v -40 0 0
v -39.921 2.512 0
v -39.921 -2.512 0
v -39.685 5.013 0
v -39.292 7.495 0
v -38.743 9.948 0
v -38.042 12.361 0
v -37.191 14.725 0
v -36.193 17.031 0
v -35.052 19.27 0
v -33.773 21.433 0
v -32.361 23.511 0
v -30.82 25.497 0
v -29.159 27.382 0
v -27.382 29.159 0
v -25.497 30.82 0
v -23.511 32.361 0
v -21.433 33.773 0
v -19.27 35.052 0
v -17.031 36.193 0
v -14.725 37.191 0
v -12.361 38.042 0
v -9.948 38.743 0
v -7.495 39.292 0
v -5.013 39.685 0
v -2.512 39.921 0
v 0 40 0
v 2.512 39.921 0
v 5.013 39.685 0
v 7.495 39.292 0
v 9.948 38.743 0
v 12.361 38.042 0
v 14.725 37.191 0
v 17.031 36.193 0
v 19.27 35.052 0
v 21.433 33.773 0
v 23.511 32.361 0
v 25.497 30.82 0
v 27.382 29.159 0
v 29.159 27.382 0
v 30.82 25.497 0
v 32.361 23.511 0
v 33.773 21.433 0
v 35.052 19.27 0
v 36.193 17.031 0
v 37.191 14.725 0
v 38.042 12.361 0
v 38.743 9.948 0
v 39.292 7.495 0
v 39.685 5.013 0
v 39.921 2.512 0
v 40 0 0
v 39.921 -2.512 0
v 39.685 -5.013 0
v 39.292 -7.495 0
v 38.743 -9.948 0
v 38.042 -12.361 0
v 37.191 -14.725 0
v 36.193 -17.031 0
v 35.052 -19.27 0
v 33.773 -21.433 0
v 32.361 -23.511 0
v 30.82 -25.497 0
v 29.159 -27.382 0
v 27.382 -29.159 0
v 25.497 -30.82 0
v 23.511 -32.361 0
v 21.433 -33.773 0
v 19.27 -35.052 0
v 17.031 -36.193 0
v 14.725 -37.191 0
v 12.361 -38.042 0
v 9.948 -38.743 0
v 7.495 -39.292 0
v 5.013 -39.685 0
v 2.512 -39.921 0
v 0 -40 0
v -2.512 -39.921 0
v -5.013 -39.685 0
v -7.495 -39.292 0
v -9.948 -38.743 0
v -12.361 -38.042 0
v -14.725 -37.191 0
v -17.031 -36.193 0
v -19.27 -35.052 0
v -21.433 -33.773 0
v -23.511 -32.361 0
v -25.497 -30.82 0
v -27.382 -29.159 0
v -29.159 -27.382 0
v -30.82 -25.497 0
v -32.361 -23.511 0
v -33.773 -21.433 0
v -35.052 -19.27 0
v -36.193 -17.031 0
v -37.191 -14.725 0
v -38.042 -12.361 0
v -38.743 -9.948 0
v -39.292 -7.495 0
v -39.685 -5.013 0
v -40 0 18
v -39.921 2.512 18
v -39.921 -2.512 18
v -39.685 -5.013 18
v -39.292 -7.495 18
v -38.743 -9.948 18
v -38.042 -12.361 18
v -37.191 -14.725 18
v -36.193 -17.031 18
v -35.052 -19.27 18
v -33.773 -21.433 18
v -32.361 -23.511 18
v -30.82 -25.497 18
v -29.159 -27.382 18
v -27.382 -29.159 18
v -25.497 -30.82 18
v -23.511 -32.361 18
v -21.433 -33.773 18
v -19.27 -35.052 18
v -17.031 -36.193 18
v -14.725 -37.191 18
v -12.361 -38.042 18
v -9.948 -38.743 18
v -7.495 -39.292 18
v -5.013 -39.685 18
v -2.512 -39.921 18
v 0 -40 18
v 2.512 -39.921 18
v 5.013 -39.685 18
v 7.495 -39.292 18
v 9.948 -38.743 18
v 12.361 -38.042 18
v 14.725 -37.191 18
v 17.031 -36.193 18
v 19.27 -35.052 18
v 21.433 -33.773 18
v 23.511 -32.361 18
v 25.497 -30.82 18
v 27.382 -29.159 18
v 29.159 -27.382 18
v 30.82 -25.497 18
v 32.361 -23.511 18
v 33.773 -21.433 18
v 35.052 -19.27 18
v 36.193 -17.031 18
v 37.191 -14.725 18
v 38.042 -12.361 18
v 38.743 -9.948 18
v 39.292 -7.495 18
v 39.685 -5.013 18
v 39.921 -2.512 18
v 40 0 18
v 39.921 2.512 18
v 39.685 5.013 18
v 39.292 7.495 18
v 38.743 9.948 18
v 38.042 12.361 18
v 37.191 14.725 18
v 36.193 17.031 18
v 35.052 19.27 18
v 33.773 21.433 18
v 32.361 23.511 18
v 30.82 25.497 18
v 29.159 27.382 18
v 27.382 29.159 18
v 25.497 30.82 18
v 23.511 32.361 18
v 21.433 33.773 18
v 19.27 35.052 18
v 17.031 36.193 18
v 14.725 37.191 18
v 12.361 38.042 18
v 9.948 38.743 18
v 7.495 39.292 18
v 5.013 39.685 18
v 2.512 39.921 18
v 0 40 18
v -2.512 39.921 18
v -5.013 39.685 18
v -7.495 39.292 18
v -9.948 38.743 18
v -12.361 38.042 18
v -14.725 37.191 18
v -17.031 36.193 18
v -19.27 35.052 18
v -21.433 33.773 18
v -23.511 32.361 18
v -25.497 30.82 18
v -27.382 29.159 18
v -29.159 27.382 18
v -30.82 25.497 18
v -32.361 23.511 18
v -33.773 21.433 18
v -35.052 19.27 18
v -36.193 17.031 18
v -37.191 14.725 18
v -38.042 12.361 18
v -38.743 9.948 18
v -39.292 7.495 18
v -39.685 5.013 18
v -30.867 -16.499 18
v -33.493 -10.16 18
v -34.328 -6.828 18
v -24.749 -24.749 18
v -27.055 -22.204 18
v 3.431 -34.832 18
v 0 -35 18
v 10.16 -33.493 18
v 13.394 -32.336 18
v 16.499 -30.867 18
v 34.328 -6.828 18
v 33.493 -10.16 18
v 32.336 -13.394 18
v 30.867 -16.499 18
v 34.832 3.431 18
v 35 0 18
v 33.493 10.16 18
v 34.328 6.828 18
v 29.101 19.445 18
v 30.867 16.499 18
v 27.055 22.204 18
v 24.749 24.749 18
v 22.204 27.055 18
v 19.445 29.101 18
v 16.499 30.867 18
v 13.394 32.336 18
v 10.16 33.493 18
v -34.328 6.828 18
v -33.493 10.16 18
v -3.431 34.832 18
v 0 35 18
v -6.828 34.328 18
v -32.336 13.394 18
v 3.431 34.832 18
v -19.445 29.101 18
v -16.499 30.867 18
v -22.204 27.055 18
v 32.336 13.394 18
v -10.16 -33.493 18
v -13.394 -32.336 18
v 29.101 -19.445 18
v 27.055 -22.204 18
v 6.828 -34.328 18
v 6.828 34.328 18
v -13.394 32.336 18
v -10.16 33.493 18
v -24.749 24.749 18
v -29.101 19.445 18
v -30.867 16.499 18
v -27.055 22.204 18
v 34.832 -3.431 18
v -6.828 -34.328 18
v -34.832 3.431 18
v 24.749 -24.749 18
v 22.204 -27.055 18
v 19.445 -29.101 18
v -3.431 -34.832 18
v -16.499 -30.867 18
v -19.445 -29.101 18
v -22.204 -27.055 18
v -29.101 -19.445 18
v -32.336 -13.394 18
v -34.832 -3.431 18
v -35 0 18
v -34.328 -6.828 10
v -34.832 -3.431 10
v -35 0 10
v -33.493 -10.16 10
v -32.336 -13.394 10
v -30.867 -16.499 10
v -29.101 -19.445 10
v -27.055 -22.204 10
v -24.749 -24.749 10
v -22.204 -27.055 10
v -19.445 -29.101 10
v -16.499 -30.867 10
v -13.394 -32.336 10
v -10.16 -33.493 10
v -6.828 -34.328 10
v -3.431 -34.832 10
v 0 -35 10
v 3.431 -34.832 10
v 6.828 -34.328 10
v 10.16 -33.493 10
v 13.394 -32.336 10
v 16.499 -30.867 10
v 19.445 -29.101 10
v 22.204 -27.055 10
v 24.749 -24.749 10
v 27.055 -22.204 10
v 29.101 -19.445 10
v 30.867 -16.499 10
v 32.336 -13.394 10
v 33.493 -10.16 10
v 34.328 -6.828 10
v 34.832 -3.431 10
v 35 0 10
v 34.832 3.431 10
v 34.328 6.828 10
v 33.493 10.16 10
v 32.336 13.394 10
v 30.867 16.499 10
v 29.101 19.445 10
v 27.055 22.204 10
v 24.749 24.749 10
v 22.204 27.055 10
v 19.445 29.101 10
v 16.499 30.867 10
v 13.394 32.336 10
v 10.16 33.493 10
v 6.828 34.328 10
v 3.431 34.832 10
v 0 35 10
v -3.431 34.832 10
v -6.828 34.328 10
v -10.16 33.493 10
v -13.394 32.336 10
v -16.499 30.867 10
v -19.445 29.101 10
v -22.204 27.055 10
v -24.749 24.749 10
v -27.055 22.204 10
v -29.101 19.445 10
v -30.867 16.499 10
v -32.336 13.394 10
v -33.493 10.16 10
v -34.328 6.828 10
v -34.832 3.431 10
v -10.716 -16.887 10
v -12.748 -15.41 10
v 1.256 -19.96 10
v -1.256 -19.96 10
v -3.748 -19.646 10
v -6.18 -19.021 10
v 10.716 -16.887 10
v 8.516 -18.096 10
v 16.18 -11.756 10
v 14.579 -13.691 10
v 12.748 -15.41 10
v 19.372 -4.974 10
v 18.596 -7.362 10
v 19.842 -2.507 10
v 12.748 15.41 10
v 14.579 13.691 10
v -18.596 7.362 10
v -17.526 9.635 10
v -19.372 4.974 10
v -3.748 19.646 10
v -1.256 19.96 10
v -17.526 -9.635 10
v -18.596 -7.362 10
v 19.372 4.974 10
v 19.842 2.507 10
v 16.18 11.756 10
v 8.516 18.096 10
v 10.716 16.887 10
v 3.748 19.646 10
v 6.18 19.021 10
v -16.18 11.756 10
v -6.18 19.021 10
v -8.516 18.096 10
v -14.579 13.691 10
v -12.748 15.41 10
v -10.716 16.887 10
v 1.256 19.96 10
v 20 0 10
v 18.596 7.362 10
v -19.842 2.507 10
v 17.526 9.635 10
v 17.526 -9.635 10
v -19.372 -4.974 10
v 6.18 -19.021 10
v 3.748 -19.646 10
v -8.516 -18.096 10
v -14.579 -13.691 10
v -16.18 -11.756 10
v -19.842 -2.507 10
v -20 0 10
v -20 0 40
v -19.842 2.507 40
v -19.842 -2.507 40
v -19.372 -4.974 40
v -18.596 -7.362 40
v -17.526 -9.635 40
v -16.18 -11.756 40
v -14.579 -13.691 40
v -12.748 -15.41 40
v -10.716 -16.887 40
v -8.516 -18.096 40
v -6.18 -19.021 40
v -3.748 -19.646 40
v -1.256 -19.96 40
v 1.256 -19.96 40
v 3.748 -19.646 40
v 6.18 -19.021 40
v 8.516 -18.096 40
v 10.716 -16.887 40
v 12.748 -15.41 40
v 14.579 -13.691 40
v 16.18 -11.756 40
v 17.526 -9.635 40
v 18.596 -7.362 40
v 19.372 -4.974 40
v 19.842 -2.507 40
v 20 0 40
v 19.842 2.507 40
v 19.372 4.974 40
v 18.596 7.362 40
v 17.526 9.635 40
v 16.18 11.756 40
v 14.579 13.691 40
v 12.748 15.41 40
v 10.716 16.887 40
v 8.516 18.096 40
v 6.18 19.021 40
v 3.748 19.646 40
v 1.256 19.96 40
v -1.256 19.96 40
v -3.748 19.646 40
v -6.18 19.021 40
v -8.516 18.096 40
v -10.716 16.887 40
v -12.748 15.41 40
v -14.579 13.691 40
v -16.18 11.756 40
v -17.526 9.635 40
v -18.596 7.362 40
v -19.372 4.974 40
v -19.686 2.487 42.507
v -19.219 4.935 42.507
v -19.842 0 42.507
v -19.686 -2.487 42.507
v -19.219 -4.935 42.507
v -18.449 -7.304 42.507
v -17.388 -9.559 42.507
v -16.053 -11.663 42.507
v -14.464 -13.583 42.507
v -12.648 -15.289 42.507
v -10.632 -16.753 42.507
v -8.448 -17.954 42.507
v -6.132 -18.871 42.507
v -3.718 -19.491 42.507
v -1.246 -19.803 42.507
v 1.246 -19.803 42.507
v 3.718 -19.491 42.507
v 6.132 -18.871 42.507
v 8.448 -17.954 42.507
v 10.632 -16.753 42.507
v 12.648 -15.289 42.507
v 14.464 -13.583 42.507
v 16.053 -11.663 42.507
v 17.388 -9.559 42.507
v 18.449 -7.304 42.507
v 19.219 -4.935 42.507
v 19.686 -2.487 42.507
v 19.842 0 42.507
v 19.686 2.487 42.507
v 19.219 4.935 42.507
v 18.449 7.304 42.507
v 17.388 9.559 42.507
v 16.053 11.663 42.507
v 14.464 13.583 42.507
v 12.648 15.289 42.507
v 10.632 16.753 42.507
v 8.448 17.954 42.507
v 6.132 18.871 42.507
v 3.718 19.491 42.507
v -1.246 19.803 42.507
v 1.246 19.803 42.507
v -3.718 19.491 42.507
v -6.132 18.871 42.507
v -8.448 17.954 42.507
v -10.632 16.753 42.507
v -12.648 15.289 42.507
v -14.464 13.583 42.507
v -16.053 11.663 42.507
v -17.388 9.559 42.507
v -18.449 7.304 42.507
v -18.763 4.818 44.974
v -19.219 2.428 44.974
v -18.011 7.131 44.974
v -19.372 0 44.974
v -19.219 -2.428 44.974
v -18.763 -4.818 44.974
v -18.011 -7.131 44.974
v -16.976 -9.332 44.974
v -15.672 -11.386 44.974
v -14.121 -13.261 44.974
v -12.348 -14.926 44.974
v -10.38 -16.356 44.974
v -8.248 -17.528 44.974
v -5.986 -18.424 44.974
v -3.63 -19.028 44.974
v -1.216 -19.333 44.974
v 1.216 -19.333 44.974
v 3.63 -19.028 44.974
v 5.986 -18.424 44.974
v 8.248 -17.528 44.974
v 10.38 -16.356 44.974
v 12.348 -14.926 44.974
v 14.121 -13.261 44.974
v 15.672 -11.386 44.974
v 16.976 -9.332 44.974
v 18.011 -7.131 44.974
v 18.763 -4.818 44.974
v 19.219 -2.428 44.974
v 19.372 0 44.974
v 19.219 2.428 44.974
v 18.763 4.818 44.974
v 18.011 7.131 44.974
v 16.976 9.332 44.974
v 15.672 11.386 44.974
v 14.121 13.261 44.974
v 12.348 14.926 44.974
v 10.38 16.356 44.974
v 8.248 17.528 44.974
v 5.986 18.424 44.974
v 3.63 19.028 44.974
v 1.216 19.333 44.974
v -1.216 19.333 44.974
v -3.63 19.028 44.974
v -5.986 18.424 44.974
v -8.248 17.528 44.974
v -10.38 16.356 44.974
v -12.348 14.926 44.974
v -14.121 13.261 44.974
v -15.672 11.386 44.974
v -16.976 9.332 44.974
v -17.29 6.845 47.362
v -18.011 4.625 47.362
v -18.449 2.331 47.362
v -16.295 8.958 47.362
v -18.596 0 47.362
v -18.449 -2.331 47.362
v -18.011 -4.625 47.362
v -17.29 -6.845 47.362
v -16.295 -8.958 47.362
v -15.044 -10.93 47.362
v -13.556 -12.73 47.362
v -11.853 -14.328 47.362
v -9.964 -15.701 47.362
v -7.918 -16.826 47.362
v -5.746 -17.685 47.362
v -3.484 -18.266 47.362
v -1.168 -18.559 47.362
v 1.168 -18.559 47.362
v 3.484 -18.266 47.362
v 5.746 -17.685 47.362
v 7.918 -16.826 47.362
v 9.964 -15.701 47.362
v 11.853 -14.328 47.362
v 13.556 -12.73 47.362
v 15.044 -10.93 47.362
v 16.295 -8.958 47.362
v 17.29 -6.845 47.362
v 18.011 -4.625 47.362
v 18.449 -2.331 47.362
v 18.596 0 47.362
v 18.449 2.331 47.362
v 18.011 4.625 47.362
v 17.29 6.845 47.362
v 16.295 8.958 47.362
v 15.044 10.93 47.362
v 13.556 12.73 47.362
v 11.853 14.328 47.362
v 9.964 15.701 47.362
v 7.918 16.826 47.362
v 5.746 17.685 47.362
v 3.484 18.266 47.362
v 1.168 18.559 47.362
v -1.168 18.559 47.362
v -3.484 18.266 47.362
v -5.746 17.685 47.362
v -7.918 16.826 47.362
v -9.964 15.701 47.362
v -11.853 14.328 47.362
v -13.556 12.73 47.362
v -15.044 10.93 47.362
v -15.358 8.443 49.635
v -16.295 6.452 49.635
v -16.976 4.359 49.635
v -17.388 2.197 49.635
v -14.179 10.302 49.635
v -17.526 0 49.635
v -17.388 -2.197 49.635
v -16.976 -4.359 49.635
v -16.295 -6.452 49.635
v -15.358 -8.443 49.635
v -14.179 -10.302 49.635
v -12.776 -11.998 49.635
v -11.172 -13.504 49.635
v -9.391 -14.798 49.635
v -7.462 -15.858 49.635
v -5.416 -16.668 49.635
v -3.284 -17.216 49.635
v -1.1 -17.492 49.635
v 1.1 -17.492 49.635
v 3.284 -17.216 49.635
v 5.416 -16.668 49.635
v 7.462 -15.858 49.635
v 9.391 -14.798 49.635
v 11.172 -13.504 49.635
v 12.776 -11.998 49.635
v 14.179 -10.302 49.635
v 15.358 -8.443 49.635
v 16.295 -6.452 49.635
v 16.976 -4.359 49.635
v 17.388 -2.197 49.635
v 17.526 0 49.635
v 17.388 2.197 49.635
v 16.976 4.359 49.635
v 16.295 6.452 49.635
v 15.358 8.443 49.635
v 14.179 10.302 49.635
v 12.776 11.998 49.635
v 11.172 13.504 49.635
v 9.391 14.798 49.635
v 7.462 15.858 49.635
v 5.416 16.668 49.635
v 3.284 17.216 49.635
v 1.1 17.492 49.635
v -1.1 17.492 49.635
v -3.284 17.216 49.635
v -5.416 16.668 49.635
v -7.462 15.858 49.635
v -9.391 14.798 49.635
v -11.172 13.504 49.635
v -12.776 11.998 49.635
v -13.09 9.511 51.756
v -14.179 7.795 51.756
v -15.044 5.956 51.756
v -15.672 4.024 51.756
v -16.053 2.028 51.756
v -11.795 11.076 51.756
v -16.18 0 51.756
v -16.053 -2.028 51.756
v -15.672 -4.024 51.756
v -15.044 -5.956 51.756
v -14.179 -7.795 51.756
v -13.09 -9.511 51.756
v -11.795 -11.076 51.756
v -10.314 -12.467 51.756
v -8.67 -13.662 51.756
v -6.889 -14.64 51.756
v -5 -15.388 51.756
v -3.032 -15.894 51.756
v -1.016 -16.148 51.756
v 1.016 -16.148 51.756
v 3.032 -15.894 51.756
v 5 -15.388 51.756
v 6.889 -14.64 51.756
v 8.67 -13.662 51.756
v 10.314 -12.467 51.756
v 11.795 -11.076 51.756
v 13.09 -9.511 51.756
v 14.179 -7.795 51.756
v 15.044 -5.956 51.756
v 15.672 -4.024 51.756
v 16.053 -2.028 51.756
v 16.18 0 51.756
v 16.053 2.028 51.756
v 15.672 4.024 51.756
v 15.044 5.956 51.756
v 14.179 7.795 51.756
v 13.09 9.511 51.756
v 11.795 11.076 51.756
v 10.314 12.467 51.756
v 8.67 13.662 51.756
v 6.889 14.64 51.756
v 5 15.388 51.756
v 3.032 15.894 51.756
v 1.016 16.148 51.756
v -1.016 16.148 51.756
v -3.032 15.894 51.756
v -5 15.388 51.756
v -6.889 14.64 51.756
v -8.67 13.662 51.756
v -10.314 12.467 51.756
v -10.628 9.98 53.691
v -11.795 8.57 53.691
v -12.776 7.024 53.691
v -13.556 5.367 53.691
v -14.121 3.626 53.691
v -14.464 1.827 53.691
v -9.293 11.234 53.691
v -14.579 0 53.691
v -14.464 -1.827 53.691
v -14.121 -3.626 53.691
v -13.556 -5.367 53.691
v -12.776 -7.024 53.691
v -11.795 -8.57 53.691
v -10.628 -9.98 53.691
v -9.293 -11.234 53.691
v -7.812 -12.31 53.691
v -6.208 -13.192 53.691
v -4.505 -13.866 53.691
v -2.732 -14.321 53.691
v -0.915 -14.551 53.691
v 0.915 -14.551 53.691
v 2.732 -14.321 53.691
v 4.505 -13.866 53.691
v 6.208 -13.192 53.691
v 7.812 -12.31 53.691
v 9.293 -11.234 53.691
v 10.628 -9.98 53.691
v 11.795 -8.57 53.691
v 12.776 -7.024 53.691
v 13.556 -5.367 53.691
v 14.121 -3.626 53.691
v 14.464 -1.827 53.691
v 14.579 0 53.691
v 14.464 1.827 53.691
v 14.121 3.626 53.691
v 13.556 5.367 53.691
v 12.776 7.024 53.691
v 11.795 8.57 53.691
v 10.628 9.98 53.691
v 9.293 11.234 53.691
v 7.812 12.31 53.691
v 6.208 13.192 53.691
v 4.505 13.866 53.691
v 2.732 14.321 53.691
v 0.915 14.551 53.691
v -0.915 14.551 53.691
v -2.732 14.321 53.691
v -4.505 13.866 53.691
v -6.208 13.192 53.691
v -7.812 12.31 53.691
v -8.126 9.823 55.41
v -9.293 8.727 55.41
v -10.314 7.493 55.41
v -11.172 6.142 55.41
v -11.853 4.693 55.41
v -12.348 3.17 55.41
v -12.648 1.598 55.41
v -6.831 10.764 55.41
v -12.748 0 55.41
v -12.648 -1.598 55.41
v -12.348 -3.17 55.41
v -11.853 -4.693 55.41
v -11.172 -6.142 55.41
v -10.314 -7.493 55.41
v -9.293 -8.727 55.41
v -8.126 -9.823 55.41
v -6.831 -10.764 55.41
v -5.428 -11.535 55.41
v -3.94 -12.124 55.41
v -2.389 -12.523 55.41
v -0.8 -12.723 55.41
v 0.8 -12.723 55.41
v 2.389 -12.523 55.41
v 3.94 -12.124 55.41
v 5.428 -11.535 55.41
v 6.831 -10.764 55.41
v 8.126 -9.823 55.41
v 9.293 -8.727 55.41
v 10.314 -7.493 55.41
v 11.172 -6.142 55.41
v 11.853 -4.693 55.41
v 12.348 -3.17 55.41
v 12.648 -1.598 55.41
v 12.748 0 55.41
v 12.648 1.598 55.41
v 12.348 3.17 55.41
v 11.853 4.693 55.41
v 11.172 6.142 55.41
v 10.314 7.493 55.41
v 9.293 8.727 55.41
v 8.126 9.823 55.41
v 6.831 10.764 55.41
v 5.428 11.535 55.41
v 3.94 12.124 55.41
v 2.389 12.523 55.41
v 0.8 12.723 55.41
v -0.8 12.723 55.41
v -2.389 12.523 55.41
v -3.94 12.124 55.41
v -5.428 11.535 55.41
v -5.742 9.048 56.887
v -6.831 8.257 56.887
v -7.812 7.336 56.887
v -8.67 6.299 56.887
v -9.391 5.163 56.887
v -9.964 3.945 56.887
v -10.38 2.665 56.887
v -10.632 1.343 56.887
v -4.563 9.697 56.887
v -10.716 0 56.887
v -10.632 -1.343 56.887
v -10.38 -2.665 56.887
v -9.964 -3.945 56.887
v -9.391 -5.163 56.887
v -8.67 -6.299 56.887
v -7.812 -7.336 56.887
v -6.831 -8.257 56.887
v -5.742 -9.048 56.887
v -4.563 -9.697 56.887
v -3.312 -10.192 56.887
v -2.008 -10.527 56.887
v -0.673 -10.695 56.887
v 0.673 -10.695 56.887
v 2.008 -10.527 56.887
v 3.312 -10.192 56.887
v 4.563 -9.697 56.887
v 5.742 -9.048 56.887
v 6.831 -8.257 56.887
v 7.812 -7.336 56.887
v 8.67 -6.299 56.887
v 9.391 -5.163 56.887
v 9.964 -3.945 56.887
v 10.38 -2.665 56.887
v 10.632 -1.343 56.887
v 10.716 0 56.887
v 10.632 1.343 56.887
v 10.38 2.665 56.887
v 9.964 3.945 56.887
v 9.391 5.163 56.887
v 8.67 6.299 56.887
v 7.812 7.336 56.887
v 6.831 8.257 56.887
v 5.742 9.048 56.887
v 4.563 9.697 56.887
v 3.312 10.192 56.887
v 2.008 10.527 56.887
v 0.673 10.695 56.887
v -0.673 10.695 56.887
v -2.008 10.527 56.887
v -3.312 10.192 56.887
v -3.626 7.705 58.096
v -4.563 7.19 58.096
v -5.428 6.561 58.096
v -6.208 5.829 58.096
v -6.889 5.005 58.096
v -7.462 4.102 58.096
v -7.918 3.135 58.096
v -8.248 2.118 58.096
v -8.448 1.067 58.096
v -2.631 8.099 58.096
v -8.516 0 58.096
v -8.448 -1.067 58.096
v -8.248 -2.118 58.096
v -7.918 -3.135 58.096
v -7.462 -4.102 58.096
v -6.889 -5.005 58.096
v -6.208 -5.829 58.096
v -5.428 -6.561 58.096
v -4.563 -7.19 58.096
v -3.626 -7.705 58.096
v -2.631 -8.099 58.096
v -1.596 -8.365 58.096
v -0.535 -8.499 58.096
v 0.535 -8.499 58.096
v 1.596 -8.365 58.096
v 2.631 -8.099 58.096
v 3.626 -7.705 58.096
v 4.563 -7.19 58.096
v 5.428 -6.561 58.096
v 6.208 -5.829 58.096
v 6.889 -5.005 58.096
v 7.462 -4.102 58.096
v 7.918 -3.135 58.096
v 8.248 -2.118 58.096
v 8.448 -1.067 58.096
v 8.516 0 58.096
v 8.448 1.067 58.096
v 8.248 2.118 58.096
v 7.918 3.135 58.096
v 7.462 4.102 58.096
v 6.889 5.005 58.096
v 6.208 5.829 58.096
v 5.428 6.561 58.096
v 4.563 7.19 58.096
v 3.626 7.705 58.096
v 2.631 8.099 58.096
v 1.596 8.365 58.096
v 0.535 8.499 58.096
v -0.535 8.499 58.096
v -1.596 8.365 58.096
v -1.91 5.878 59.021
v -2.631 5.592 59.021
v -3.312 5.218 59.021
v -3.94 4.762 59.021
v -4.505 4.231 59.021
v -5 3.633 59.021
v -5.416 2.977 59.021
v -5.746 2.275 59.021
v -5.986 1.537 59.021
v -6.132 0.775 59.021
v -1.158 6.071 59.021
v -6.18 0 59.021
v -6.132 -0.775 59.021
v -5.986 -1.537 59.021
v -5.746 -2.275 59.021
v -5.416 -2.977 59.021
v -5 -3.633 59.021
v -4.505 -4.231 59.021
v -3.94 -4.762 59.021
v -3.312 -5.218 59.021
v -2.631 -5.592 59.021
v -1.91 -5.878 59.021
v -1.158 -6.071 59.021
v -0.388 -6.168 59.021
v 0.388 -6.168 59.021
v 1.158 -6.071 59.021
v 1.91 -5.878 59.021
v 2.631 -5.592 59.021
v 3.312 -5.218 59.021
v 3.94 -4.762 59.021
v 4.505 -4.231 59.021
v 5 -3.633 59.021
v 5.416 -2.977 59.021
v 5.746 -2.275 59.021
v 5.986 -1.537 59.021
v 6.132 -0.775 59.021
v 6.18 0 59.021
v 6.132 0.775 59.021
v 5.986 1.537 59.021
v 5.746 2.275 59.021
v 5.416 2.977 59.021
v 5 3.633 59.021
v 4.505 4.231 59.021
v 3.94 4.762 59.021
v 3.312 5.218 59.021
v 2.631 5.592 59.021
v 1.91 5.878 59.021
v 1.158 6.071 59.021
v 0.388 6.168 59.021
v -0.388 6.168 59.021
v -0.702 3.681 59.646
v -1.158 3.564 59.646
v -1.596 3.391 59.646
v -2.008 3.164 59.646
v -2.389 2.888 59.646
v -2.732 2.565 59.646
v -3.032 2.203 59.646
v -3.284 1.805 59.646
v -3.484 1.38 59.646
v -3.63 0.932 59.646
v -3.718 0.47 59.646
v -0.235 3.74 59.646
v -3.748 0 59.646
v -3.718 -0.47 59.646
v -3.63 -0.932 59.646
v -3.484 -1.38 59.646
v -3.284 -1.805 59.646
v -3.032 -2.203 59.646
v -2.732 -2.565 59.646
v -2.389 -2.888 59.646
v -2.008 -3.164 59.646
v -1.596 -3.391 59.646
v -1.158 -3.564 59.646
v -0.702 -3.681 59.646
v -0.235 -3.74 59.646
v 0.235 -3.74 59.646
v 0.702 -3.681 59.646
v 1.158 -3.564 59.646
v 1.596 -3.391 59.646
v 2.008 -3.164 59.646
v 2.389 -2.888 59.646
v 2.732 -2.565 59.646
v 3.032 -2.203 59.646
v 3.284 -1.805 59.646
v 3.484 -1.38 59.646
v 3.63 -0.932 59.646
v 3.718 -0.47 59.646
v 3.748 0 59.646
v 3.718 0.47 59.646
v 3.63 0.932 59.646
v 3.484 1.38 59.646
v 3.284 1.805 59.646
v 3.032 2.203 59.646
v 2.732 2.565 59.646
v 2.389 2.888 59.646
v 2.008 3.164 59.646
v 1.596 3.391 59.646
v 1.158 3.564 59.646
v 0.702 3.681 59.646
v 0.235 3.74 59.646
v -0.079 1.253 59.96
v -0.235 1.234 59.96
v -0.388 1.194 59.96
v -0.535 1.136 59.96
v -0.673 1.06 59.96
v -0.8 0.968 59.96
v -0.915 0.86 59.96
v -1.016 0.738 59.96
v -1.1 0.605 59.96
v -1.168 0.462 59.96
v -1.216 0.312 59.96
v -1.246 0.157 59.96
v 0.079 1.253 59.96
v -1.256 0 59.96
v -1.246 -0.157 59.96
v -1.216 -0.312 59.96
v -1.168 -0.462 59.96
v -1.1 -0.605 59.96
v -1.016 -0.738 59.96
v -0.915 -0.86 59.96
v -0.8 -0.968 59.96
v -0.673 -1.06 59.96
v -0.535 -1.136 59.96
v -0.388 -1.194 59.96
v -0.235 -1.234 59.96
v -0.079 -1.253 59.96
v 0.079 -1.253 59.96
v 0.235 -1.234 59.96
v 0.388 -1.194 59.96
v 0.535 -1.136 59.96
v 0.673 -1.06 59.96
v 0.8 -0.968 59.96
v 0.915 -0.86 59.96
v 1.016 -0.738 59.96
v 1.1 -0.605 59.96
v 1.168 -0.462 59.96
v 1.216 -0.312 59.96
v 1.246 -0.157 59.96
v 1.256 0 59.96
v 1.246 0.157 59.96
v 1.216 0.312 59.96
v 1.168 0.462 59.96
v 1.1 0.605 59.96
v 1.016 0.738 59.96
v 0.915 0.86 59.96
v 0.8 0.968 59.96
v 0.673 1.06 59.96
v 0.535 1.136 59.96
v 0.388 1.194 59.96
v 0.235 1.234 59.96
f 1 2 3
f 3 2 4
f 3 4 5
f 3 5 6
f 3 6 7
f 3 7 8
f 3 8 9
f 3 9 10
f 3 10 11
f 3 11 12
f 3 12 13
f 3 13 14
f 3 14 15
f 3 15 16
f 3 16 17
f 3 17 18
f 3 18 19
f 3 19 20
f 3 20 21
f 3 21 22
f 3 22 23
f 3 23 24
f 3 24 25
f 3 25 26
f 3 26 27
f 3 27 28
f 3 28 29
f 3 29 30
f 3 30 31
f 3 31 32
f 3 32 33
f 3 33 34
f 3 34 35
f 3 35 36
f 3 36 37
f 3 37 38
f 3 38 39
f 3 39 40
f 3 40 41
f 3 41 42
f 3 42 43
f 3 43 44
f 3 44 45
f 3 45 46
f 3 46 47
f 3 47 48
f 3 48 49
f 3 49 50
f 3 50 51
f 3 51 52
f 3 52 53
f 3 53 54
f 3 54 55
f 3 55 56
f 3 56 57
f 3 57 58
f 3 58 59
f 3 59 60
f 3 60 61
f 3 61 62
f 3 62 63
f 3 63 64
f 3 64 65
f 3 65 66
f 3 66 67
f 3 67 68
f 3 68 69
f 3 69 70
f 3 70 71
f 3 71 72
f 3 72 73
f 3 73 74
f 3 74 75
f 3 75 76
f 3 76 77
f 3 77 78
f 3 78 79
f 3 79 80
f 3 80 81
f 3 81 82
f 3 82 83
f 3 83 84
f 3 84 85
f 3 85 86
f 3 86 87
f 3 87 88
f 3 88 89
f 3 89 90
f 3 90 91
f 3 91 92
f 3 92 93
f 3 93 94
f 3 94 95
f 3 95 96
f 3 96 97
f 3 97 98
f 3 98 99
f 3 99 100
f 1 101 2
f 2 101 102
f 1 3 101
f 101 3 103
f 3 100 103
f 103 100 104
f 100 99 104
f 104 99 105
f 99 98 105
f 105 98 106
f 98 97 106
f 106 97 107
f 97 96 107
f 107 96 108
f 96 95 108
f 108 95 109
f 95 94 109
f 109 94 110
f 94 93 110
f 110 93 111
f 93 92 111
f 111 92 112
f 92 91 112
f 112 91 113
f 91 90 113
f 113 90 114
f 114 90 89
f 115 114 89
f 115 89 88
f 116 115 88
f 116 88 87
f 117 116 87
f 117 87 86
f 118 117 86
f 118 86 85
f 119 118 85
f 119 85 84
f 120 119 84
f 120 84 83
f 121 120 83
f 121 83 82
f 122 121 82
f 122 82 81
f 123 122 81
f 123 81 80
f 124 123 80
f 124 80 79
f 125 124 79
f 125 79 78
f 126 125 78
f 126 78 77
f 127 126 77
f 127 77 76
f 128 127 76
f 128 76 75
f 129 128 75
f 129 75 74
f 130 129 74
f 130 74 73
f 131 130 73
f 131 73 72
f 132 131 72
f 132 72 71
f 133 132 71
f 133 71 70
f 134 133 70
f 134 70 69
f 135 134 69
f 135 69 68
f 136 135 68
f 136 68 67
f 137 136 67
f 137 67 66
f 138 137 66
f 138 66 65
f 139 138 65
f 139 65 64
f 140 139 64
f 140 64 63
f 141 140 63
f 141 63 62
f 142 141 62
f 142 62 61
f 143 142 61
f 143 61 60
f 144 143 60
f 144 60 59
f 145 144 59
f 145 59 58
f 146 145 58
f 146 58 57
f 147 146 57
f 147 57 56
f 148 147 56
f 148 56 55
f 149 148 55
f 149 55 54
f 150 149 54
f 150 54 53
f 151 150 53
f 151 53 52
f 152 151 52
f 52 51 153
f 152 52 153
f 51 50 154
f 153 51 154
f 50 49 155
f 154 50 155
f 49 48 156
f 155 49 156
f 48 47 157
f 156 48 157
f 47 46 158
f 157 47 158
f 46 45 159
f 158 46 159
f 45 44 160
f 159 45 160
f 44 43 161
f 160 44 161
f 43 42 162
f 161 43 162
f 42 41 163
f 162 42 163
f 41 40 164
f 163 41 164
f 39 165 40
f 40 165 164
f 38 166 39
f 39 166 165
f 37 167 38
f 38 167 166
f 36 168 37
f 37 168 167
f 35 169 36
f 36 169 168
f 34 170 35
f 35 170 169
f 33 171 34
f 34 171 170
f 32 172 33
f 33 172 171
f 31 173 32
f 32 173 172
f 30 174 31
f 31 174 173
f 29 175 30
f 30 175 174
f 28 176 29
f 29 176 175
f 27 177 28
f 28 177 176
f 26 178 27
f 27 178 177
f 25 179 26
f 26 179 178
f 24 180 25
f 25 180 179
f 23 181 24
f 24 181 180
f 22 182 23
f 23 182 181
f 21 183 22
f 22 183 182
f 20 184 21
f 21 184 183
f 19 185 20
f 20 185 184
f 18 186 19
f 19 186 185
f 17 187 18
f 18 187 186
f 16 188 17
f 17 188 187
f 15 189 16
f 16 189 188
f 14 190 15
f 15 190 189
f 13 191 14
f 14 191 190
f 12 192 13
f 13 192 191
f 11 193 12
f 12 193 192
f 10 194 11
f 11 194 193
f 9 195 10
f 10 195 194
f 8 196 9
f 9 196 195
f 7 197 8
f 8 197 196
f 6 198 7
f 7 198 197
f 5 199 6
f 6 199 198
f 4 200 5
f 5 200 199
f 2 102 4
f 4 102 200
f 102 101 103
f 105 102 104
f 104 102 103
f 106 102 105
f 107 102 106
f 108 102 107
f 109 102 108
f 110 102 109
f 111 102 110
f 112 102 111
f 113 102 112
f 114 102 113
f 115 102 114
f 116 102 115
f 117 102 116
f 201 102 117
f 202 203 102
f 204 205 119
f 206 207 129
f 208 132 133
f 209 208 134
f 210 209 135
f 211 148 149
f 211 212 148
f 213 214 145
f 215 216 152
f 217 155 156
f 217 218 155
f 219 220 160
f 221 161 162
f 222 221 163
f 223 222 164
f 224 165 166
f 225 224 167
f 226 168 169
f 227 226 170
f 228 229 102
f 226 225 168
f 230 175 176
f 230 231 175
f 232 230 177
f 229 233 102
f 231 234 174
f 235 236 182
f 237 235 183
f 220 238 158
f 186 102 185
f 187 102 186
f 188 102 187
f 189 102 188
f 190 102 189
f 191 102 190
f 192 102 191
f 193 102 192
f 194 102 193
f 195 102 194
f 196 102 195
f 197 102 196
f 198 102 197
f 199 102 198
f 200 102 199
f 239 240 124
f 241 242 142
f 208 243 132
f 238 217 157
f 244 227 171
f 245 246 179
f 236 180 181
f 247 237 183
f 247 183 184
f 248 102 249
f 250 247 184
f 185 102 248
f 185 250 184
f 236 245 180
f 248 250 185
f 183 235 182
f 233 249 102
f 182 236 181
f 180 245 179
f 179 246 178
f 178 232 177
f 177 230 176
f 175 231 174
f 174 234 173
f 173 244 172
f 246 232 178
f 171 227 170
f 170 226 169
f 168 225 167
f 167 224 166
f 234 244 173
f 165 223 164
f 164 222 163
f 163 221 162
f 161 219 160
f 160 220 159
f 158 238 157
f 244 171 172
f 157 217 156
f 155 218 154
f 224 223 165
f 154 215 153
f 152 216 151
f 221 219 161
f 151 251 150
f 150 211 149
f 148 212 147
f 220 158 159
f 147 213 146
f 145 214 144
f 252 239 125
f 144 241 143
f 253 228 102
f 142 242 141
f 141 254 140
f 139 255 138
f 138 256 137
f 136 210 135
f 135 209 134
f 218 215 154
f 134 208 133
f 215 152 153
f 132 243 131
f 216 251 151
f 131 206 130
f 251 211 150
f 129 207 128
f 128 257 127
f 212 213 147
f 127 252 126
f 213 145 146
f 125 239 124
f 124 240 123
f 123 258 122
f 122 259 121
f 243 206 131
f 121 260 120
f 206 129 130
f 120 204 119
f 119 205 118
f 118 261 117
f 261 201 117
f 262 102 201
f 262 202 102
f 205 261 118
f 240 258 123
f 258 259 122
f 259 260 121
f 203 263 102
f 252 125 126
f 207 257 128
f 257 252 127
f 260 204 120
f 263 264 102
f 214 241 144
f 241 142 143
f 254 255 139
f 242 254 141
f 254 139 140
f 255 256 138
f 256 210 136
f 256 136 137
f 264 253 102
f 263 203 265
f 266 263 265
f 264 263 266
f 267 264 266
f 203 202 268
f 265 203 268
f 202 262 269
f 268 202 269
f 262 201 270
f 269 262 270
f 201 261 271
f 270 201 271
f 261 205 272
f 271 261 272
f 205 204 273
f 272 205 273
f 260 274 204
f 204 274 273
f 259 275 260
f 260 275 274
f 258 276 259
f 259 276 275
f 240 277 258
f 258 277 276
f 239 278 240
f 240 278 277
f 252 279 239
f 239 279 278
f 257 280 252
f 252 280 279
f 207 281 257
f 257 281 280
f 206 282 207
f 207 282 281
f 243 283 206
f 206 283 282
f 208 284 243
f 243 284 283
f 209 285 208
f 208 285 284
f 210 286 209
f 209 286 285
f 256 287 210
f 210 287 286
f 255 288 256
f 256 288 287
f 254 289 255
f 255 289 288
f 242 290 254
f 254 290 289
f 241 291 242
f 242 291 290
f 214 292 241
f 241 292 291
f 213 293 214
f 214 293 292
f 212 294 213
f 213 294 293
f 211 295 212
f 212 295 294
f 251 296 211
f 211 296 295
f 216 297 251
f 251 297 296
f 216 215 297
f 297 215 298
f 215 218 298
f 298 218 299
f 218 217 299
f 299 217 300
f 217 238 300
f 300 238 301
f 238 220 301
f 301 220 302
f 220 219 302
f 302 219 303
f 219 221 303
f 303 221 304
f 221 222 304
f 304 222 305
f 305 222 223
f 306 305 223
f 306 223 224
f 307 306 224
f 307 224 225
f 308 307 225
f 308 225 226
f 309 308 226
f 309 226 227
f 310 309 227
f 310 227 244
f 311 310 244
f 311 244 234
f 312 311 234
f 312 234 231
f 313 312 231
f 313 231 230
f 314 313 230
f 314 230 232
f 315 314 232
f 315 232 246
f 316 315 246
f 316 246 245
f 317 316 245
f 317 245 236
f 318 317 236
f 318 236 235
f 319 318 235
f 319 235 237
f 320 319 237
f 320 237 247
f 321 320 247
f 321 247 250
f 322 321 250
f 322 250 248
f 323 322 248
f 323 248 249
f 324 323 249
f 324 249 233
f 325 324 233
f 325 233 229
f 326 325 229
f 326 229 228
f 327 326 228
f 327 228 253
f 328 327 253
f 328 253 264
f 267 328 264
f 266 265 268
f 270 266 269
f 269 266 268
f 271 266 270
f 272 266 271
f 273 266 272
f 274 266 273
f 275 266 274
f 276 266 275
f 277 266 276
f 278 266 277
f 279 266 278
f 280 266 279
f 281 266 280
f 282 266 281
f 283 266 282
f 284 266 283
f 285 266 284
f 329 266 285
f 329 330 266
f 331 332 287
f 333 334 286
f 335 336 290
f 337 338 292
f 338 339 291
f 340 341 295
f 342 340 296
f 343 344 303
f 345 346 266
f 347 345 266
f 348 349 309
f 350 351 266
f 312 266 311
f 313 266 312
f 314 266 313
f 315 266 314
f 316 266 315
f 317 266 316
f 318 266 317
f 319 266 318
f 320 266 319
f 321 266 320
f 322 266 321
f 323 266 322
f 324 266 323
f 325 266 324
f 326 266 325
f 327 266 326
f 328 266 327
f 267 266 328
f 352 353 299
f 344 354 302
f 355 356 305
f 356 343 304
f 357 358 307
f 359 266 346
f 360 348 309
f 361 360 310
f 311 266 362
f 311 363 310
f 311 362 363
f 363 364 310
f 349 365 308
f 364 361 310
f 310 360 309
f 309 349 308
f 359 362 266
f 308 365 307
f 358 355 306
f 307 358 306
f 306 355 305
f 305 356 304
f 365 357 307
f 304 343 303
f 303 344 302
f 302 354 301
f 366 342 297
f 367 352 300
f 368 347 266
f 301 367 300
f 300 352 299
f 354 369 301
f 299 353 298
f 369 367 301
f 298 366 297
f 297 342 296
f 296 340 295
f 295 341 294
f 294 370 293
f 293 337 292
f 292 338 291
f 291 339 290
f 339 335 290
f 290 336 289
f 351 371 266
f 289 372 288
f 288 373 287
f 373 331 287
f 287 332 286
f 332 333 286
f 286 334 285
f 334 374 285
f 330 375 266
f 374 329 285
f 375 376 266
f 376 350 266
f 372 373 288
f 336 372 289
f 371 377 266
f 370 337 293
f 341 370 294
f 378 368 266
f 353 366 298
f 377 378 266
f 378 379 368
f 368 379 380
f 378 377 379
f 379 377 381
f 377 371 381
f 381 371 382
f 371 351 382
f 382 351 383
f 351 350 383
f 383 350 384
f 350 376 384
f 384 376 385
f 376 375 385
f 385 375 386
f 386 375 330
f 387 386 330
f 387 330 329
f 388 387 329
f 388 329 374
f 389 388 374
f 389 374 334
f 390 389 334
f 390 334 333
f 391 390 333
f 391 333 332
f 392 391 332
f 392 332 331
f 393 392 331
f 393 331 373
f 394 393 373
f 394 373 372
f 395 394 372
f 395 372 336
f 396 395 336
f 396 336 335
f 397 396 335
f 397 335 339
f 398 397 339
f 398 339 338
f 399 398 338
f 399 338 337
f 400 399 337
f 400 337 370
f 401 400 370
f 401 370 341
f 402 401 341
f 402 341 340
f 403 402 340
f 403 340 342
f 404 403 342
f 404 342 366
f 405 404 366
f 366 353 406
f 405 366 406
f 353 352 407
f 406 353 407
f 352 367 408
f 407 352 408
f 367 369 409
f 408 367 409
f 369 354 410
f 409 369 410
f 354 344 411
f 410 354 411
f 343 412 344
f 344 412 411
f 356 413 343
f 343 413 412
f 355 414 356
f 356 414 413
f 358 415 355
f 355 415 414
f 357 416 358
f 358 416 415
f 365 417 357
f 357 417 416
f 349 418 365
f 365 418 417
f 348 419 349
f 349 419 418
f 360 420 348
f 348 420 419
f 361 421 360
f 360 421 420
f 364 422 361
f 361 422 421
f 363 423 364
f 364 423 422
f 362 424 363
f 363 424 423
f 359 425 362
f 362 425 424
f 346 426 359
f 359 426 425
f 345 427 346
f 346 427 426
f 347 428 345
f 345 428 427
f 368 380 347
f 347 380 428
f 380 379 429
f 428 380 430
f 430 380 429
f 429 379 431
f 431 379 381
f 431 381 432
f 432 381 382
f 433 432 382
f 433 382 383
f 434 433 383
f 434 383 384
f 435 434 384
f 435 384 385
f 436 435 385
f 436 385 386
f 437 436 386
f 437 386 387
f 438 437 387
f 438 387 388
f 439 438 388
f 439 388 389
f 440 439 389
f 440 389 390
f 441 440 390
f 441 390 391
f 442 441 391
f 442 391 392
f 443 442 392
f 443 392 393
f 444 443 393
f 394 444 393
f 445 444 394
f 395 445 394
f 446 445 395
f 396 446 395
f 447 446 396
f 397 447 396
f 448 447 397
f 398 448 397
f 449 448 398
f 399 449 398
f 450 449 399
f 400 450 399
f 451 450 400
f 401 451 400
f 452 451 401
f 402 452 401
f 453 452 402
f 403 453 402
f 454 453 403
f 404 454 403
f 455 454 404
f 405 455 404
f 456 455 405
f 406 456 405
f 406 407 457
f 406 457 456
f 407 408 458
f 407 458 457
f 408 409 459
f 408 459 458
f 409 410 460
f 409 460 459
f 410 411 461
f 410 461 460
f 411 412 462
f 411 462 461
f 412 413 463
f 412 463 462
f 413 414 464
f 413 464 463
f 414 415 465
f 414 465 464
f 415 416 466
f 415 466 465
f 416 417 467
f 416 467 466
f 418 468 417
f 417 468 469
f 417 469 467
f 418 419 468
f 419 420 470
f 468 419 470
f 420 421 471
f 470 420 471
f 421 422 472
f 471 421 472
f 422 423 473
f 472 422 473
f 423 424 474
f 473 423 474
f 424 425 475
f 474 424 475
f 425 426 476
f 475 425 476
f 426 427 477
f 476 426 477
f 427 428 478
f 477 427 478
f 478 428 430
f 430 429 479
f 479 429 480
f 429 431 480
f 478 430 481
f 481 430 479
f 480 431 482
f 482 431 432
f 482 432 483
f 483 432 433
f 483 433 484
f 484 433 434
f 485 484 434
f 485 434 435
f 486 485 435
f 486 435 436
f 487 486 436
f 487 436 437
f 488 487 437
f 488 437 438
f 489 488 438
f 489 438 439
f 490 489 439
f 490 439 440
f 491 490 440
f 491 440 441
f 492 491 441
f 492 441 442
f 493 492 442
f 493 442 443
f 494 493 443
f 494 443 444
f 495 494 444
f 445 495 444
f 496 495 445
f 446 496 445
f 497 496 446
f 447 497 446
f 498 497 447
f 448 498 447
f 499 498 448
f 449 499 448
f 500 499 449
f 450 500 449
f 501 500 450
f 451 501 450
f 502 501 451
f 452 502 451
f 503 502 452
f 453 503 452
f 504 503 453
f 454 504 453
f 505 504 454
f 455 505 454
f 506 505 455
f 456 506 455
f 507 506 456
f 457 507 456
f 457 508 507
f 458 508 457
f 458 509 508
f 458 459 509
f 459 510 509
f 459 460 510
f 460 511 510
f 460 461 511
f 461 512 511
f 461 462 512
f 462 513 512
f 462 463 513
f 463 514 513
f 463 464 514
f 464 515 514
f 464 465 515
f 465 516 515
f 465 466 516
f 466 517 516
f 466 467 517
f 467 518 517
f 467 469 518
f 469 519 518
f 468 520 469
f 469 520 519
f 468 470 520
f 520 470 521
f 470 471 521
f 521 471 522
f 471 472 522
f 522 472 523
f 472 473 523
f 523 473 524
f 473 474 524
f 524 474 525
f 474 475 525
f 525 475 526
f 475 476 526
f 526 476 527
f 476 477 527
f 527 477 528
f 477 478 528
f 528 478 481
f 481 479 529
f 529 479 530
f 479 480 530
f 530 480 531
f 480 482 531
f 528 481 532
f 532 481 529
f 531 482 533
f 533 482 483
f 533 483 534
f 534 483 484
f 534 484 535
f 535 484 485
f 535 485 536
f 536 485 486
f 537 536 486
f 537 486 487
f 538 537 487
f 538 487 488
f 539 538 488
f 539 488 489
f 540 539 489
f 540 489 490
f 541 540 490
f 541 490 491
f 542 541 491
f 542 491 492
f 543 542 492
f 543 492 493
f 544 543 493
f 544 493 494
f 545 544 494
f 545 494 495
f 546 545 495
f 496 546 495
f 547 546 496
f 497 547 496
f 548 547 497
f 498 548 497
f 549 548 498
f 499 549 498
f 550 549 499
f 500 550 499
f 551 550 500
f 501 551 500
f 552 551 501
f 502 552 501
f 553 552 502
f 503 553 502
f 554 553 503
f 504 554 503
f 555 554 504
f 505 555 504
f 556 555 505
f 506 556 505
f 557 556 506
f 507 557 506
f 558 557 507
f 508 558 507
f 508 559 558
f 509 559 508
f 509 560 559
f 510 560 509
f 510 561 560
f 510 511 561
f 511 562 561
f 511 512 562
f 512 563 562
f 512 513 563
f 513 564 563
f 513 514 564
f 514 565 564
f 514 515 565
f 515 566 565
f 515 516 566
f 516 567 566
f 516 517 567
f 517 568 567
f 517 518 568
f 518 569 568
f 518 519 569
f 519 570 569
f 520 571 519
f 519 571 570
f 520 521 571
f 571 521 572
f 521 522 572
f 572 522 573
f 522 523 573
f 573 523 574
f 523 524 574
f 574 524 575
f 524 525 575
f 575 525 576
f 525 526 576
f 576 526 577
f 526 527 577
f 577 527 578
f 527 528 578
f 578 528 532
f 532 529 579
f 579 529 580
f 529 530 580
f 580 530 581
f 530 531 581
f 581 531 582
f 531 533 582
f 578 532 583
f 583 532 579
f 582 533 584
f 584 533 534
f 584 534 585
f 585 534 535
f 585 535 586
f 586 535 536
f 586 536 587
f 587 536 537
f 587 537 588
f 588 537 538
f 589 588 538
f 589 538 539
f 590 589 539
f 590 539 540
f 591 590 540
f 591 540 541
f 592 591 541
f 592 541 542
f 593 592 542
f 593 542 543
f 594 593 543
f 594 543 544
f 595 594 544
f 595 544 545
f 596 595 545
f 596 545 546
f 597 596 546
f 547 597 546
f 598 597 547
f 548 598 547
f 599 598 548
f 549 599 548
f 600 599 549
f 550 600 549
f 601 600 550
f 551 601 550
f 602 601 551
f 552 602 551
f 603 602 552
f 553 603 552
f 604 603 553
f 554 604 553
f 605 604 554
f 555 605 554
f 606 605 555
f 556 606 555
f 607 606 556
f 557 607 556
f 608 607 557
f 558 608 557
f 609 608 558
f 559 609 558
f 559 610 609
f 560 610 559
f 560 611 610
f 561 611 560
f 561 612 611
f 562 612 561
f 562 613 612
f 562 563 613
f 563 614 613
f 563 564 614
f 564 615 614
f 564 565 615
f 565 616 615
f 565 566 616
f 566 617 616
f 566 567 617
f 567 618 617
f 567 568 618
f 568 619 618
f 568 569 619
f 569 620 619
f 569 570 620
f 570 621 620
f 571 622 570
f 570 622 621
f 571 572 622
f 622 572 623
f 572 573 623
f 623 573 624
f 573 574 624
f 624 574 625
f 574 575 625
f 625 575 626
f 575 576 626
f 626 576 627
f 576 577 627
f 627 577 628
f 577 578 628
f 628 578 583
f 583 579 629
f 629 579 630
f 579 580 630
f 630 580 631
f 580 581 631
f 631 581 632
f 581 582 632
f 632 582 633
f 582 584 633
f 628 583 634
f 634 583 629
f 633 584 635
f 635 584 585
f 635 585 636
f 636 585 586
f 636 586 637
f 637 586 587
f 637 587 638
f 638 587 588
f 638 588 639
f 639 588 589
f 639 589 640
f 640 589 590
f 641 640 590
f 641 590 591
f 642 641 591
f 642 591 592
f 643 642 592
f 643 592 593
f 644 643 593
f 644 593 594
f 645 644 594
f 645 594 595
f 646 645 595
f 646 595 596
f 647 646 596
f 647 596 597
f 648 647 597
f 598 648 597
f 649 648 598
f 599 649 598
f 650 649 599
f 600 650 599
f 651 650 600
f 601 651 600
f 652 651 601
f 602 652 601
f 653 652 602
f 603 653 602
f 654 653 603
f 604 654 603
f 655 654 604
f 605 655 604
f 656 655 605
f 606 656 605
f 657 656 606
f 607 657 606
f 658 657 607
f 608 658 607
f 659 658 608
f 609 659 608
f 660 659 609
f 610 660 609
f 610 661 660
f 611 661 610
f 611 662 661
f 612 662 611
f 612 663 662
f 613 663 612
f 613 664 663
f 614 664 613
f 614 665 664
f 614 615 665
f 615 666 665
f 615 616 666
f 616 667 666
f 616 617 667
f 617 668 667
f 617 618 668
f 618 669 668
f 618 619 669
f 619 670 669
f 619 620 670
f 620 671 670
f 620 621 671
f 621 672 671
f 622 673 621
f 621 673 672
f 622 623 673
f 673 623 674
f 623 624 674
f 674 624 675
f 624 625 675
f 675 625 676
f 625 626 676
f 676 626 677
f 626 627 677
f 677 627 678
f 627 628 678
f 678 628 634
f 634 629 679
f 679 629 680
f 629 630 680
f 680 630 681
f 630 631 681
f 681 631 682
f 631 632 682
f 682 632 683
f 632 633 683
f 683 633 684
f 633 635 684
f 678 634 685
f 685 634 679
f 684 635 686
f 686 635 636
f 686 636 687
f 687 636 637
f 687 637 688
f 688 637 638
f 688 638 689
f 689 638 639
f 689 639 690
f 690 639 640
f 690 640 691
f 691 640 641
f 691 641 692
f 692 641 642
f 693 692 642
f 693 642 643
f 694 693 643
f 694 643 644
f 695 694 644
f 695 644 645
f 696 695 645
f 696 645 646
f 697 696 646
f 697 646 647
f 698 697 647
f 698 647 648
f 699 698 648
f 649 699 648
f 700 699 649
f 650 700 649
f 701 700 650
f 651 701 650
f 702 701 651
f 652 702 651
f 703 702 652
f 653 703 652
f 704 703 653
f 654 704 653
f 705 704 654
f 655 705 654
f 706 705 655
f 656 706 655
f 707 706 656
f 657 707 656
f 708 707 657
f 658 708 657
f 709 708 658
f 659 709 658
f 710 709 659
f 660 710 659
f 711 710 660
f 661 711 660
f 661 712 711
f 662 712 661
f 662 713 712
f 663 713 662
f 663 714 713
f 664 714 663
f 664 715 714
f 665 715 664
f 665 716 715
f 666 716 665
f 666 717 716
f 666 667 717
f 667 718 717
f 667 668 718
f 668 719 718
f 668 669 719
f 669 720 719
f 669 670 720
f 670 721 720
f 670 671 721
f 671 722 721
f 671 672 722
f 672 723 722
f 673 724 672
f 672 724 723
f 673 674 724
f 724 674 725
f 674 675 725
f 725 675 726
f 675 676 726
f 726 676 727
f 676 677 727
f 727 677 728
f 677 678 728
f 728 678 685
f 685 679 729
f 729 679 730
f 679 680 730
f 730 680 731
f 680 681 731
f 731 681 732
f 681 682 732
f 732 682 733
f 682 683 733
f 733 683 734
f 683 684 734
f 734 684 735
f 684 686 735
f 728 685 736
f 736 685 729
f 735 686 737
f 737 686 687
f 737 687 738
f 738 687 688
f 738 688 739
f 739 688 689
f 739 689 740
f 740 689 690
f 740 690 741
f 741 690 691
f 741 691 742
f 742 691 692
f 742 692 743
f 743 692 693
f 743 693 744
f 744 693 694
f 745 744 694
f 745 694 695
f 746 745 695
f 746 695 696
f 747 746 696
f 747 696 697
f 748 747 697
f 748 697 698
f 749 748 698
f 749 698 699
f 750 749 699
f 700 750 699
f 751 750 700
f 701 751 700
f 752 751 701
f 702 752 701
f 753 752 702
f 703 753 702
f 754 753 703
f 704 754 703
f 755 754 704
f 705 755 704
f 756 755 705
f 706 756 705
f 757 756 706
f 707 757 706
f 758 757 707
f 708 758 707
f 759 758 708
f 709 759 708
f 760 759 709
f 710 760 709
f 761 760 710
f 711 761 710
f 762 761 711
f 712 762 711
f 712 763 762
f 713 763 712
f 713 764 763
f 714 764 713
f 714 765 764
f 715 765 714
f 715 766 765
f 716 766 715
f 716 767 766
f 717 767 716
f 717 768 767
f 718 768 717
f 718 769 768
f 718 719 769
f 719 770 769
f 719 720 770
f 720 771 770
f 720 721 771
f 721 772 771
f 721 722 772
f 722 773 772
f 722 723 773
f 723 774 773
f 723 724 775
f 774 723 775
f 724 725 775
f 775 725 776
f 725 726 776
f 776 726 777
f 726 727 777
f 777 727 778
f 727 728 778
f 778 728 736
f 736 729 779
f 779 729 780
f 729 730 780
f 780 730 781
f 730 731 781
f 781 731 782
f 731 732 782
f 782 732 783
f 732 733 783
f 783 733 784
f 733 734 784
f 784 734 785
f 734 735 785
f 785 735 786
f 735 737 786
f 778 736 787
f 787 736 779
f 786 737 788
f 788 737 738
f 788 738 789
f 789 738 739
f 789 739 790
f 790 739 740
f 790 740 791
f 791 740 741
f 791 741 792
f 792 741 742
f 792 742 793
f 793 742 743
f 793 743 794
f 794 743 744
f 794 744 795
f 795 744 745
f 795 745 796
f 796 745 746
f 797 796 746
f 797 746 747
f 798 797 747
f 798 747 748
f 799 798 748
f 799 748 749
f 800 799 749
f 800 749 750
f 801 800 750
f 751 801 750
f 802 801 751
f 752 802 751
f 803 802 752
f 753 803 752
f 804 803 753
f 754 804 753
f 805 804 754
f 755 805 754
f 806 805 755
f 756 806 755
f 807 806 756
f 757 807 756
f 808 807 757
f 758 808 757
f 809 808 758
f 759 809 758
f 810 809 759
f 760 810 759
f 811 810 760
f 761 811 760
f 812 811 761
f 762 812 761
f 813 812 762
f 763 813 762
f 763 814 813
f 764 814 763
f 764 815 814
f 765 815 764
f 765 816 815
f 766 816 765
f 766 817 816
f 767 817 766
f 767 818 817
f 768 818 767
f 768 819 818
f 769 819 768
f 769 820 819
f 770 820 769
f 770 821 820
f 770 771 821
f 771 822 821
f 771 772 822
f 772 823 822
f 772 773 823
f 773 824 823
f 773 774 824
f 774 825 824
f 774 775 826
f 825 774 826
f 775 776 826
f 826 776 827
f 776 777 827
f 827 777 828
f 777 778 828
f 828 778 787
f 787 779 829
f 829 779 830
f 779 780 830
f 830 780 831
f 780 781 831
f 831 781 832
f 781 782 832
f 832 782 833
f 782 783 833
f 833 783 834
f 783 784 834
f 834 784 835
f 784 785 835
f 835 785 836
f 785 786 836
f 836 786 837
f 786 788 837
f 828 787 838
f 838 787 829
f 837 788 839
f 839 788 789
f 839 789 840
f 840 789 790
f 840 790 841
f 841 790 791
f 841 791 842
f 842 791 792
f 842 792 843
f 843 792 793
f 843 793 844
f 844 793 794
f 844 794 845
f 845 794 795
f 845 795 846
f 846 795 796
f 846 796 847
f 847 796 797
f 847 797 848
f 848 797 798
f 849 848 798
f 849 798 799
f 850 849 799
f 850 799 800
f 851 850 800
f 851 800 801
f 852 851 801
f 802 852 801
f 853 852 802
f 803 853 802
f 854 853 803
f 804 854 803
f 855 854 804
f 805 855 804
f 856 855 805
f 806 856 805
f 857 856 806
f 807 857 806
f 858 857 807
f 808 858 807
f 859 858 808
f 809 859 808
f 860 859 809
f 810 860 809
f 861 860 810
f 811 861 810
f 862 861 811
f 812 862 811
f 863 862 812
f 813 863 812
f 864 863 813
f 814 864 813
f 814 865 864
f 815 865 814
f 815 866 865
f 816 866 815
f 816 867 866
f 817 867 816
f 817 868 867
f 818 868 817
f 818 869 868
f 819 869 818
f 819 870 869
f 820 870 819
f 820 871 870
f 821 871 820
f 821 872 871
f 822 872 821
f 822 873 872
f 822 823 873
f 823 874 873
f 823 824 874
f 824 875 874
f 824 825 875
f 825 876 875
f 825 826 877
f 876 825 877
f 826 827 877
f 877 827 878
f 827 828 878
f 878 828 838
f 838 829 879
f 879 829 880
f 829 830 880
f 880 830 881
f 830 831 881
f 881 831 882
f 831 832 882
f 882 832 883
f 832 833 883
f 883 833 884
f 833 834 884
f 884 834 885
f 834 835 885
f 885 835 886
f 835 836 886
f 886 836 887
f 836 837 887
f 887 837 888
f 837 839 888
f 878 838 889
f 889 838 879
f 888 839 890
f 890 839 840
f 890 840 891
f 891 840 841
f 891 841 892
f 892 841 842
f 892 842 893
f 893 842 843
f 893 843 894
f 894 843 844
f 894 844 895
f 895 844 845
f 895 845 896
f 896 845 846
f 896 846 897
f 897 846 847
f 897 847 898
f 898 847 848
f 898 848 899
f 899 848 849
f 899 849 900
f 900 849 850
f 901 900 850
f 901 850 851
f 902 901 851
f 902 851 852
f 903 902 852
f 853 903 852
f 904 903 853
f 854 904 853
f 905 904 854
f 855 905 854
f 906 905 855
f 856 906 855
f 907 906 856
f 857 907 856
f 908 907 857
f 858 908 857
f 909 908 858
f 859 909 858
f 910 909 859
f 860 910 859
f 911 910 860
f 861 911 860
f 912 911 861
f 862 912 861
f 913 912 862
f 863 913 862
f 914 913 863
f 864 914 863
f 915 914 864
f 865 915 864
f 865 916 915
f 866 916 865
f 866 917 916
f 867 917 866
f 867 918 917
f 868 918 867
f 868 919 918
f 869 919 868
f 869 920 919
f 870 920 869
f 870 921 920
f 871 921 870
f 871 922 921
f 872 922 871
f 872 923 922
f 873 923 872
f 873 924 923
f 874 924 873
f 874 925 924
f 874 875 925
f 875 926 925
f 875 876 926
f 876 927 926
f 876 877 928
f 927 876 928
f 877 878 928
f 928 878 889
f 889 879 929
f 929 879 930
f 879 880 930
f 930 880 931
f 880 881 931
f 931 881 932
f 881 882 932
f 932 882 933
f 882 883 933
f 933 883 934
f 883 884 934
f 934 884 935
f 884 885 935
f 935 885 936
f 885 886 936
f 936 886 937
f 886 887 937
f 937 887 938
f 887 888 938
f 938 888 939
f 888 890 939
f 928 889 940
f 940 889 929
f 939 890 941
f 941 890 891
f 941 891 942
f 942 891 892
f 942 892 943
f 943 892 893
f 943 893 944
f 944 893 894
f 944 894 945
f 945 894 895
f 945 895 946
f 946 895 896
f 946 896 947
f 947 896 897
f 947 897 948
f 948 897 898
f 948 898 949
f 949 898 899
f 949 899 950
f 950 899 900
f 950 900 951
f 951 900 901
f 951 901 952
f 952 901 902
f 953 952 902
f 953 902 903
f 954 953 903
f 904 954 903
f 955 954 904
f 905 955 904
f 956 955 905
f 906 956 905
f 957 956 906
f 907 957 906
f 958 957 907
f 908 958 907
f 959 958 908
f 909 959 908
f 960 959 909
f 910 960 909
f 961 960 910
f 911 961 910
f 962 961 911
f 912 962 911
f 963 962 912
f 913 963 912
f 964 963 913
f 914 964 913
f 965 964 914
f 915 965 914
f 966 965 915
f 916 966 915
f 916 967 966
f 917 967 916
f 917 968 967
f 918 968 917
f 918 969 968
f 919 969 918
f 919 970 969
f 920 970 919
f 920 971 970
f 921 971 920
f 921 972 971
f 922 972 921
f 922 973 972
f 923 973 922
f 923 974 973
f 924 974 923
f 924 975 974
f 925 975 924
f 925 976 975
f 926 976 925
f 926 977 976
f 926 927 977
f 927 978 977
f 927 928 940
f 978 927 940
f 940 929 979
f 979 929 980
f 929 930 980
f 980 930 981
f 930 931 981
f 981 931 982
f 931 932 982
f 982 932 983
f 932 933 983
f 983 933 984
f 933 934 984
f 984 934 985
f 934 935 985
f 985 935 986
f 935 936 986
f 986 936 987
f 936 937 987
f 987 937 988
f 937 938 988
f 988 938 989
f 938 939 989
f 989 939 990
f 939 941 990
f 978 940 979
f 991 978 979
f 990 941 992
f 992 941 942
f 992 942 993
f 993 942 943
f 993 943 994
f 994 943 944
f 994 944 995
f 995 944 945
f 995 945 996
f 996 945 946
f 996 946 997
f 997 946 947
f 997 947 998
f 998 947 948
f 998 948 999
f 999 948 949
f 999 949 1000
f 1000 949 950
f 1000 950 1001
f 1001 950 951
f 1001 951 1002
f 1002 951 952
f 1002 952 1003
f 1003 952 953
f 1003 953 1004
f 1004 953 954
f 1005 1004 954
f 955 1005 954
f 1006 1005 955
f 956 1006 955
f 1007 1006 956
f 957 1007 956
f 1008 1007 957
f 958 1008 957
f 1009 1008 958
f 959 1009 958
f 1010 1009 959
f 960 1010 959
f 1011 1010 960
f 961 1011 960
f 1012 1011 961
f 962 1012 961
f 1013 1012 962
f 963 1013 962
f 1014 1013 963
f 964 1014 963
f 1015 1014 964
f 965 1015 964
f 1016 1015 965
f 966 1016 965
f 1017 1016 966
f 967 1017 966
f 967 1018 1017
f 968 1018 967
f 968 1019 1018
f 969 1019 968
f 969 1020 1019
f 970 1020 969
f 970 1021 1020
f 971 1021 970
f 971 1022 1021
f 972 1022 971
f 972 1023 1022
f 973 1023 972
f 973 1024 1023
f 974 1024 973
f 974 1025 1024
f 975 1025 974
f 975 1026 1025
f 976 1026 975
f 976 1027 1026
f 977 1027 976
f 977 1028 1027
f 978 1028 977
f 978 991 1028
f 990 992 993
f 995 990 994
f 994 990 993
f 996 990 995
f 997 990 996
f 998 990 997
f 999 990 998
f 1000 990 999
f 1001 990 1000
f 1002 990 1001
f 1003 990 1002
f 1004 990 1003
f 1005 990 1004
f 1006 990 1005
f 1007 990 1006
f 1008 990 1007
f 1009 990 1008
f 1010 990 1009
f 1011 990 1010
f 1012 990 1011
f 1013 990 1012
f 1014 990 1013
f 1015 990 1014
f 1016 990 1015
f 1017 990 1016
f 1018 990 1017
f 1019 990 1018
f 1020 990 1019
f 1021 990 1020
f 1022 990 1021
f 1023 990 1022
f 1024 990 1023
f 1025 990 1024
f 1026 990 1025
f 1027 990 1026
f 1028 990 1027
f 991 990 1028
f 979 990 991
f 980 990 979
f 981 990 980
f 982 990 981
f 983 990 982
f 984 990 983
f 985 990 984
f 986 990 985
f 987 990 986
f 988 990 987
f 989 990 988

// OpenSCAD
// AIR HOCKEY ROBOT PROJECT (AHROBOT)
// 
// by Jose Julio

// PUSHER

/*
// PUCK v2 (lighter version)
difference()
{
cylinder(r=30,h=5,center=false,$fn=100);
translate([0,0,-1]) cylinder(r=27.25,h=3,center=false,$fn=64);
translate([0,0,2.8]) cylinder(r=27.25,h=10,center=false,$fn=64);
}
*/


// PUSHER
difference()
{
cylinder(r=40,h=18,center=false,$fn=100);
translate([0,0,10]) cylinder(r=35,h=20,center=false,$fn=64);
}
cylinder(r=20,h=40,center=false,$fn=50);
translate([0,0,40]) sphere(r=20,$fn=50);
